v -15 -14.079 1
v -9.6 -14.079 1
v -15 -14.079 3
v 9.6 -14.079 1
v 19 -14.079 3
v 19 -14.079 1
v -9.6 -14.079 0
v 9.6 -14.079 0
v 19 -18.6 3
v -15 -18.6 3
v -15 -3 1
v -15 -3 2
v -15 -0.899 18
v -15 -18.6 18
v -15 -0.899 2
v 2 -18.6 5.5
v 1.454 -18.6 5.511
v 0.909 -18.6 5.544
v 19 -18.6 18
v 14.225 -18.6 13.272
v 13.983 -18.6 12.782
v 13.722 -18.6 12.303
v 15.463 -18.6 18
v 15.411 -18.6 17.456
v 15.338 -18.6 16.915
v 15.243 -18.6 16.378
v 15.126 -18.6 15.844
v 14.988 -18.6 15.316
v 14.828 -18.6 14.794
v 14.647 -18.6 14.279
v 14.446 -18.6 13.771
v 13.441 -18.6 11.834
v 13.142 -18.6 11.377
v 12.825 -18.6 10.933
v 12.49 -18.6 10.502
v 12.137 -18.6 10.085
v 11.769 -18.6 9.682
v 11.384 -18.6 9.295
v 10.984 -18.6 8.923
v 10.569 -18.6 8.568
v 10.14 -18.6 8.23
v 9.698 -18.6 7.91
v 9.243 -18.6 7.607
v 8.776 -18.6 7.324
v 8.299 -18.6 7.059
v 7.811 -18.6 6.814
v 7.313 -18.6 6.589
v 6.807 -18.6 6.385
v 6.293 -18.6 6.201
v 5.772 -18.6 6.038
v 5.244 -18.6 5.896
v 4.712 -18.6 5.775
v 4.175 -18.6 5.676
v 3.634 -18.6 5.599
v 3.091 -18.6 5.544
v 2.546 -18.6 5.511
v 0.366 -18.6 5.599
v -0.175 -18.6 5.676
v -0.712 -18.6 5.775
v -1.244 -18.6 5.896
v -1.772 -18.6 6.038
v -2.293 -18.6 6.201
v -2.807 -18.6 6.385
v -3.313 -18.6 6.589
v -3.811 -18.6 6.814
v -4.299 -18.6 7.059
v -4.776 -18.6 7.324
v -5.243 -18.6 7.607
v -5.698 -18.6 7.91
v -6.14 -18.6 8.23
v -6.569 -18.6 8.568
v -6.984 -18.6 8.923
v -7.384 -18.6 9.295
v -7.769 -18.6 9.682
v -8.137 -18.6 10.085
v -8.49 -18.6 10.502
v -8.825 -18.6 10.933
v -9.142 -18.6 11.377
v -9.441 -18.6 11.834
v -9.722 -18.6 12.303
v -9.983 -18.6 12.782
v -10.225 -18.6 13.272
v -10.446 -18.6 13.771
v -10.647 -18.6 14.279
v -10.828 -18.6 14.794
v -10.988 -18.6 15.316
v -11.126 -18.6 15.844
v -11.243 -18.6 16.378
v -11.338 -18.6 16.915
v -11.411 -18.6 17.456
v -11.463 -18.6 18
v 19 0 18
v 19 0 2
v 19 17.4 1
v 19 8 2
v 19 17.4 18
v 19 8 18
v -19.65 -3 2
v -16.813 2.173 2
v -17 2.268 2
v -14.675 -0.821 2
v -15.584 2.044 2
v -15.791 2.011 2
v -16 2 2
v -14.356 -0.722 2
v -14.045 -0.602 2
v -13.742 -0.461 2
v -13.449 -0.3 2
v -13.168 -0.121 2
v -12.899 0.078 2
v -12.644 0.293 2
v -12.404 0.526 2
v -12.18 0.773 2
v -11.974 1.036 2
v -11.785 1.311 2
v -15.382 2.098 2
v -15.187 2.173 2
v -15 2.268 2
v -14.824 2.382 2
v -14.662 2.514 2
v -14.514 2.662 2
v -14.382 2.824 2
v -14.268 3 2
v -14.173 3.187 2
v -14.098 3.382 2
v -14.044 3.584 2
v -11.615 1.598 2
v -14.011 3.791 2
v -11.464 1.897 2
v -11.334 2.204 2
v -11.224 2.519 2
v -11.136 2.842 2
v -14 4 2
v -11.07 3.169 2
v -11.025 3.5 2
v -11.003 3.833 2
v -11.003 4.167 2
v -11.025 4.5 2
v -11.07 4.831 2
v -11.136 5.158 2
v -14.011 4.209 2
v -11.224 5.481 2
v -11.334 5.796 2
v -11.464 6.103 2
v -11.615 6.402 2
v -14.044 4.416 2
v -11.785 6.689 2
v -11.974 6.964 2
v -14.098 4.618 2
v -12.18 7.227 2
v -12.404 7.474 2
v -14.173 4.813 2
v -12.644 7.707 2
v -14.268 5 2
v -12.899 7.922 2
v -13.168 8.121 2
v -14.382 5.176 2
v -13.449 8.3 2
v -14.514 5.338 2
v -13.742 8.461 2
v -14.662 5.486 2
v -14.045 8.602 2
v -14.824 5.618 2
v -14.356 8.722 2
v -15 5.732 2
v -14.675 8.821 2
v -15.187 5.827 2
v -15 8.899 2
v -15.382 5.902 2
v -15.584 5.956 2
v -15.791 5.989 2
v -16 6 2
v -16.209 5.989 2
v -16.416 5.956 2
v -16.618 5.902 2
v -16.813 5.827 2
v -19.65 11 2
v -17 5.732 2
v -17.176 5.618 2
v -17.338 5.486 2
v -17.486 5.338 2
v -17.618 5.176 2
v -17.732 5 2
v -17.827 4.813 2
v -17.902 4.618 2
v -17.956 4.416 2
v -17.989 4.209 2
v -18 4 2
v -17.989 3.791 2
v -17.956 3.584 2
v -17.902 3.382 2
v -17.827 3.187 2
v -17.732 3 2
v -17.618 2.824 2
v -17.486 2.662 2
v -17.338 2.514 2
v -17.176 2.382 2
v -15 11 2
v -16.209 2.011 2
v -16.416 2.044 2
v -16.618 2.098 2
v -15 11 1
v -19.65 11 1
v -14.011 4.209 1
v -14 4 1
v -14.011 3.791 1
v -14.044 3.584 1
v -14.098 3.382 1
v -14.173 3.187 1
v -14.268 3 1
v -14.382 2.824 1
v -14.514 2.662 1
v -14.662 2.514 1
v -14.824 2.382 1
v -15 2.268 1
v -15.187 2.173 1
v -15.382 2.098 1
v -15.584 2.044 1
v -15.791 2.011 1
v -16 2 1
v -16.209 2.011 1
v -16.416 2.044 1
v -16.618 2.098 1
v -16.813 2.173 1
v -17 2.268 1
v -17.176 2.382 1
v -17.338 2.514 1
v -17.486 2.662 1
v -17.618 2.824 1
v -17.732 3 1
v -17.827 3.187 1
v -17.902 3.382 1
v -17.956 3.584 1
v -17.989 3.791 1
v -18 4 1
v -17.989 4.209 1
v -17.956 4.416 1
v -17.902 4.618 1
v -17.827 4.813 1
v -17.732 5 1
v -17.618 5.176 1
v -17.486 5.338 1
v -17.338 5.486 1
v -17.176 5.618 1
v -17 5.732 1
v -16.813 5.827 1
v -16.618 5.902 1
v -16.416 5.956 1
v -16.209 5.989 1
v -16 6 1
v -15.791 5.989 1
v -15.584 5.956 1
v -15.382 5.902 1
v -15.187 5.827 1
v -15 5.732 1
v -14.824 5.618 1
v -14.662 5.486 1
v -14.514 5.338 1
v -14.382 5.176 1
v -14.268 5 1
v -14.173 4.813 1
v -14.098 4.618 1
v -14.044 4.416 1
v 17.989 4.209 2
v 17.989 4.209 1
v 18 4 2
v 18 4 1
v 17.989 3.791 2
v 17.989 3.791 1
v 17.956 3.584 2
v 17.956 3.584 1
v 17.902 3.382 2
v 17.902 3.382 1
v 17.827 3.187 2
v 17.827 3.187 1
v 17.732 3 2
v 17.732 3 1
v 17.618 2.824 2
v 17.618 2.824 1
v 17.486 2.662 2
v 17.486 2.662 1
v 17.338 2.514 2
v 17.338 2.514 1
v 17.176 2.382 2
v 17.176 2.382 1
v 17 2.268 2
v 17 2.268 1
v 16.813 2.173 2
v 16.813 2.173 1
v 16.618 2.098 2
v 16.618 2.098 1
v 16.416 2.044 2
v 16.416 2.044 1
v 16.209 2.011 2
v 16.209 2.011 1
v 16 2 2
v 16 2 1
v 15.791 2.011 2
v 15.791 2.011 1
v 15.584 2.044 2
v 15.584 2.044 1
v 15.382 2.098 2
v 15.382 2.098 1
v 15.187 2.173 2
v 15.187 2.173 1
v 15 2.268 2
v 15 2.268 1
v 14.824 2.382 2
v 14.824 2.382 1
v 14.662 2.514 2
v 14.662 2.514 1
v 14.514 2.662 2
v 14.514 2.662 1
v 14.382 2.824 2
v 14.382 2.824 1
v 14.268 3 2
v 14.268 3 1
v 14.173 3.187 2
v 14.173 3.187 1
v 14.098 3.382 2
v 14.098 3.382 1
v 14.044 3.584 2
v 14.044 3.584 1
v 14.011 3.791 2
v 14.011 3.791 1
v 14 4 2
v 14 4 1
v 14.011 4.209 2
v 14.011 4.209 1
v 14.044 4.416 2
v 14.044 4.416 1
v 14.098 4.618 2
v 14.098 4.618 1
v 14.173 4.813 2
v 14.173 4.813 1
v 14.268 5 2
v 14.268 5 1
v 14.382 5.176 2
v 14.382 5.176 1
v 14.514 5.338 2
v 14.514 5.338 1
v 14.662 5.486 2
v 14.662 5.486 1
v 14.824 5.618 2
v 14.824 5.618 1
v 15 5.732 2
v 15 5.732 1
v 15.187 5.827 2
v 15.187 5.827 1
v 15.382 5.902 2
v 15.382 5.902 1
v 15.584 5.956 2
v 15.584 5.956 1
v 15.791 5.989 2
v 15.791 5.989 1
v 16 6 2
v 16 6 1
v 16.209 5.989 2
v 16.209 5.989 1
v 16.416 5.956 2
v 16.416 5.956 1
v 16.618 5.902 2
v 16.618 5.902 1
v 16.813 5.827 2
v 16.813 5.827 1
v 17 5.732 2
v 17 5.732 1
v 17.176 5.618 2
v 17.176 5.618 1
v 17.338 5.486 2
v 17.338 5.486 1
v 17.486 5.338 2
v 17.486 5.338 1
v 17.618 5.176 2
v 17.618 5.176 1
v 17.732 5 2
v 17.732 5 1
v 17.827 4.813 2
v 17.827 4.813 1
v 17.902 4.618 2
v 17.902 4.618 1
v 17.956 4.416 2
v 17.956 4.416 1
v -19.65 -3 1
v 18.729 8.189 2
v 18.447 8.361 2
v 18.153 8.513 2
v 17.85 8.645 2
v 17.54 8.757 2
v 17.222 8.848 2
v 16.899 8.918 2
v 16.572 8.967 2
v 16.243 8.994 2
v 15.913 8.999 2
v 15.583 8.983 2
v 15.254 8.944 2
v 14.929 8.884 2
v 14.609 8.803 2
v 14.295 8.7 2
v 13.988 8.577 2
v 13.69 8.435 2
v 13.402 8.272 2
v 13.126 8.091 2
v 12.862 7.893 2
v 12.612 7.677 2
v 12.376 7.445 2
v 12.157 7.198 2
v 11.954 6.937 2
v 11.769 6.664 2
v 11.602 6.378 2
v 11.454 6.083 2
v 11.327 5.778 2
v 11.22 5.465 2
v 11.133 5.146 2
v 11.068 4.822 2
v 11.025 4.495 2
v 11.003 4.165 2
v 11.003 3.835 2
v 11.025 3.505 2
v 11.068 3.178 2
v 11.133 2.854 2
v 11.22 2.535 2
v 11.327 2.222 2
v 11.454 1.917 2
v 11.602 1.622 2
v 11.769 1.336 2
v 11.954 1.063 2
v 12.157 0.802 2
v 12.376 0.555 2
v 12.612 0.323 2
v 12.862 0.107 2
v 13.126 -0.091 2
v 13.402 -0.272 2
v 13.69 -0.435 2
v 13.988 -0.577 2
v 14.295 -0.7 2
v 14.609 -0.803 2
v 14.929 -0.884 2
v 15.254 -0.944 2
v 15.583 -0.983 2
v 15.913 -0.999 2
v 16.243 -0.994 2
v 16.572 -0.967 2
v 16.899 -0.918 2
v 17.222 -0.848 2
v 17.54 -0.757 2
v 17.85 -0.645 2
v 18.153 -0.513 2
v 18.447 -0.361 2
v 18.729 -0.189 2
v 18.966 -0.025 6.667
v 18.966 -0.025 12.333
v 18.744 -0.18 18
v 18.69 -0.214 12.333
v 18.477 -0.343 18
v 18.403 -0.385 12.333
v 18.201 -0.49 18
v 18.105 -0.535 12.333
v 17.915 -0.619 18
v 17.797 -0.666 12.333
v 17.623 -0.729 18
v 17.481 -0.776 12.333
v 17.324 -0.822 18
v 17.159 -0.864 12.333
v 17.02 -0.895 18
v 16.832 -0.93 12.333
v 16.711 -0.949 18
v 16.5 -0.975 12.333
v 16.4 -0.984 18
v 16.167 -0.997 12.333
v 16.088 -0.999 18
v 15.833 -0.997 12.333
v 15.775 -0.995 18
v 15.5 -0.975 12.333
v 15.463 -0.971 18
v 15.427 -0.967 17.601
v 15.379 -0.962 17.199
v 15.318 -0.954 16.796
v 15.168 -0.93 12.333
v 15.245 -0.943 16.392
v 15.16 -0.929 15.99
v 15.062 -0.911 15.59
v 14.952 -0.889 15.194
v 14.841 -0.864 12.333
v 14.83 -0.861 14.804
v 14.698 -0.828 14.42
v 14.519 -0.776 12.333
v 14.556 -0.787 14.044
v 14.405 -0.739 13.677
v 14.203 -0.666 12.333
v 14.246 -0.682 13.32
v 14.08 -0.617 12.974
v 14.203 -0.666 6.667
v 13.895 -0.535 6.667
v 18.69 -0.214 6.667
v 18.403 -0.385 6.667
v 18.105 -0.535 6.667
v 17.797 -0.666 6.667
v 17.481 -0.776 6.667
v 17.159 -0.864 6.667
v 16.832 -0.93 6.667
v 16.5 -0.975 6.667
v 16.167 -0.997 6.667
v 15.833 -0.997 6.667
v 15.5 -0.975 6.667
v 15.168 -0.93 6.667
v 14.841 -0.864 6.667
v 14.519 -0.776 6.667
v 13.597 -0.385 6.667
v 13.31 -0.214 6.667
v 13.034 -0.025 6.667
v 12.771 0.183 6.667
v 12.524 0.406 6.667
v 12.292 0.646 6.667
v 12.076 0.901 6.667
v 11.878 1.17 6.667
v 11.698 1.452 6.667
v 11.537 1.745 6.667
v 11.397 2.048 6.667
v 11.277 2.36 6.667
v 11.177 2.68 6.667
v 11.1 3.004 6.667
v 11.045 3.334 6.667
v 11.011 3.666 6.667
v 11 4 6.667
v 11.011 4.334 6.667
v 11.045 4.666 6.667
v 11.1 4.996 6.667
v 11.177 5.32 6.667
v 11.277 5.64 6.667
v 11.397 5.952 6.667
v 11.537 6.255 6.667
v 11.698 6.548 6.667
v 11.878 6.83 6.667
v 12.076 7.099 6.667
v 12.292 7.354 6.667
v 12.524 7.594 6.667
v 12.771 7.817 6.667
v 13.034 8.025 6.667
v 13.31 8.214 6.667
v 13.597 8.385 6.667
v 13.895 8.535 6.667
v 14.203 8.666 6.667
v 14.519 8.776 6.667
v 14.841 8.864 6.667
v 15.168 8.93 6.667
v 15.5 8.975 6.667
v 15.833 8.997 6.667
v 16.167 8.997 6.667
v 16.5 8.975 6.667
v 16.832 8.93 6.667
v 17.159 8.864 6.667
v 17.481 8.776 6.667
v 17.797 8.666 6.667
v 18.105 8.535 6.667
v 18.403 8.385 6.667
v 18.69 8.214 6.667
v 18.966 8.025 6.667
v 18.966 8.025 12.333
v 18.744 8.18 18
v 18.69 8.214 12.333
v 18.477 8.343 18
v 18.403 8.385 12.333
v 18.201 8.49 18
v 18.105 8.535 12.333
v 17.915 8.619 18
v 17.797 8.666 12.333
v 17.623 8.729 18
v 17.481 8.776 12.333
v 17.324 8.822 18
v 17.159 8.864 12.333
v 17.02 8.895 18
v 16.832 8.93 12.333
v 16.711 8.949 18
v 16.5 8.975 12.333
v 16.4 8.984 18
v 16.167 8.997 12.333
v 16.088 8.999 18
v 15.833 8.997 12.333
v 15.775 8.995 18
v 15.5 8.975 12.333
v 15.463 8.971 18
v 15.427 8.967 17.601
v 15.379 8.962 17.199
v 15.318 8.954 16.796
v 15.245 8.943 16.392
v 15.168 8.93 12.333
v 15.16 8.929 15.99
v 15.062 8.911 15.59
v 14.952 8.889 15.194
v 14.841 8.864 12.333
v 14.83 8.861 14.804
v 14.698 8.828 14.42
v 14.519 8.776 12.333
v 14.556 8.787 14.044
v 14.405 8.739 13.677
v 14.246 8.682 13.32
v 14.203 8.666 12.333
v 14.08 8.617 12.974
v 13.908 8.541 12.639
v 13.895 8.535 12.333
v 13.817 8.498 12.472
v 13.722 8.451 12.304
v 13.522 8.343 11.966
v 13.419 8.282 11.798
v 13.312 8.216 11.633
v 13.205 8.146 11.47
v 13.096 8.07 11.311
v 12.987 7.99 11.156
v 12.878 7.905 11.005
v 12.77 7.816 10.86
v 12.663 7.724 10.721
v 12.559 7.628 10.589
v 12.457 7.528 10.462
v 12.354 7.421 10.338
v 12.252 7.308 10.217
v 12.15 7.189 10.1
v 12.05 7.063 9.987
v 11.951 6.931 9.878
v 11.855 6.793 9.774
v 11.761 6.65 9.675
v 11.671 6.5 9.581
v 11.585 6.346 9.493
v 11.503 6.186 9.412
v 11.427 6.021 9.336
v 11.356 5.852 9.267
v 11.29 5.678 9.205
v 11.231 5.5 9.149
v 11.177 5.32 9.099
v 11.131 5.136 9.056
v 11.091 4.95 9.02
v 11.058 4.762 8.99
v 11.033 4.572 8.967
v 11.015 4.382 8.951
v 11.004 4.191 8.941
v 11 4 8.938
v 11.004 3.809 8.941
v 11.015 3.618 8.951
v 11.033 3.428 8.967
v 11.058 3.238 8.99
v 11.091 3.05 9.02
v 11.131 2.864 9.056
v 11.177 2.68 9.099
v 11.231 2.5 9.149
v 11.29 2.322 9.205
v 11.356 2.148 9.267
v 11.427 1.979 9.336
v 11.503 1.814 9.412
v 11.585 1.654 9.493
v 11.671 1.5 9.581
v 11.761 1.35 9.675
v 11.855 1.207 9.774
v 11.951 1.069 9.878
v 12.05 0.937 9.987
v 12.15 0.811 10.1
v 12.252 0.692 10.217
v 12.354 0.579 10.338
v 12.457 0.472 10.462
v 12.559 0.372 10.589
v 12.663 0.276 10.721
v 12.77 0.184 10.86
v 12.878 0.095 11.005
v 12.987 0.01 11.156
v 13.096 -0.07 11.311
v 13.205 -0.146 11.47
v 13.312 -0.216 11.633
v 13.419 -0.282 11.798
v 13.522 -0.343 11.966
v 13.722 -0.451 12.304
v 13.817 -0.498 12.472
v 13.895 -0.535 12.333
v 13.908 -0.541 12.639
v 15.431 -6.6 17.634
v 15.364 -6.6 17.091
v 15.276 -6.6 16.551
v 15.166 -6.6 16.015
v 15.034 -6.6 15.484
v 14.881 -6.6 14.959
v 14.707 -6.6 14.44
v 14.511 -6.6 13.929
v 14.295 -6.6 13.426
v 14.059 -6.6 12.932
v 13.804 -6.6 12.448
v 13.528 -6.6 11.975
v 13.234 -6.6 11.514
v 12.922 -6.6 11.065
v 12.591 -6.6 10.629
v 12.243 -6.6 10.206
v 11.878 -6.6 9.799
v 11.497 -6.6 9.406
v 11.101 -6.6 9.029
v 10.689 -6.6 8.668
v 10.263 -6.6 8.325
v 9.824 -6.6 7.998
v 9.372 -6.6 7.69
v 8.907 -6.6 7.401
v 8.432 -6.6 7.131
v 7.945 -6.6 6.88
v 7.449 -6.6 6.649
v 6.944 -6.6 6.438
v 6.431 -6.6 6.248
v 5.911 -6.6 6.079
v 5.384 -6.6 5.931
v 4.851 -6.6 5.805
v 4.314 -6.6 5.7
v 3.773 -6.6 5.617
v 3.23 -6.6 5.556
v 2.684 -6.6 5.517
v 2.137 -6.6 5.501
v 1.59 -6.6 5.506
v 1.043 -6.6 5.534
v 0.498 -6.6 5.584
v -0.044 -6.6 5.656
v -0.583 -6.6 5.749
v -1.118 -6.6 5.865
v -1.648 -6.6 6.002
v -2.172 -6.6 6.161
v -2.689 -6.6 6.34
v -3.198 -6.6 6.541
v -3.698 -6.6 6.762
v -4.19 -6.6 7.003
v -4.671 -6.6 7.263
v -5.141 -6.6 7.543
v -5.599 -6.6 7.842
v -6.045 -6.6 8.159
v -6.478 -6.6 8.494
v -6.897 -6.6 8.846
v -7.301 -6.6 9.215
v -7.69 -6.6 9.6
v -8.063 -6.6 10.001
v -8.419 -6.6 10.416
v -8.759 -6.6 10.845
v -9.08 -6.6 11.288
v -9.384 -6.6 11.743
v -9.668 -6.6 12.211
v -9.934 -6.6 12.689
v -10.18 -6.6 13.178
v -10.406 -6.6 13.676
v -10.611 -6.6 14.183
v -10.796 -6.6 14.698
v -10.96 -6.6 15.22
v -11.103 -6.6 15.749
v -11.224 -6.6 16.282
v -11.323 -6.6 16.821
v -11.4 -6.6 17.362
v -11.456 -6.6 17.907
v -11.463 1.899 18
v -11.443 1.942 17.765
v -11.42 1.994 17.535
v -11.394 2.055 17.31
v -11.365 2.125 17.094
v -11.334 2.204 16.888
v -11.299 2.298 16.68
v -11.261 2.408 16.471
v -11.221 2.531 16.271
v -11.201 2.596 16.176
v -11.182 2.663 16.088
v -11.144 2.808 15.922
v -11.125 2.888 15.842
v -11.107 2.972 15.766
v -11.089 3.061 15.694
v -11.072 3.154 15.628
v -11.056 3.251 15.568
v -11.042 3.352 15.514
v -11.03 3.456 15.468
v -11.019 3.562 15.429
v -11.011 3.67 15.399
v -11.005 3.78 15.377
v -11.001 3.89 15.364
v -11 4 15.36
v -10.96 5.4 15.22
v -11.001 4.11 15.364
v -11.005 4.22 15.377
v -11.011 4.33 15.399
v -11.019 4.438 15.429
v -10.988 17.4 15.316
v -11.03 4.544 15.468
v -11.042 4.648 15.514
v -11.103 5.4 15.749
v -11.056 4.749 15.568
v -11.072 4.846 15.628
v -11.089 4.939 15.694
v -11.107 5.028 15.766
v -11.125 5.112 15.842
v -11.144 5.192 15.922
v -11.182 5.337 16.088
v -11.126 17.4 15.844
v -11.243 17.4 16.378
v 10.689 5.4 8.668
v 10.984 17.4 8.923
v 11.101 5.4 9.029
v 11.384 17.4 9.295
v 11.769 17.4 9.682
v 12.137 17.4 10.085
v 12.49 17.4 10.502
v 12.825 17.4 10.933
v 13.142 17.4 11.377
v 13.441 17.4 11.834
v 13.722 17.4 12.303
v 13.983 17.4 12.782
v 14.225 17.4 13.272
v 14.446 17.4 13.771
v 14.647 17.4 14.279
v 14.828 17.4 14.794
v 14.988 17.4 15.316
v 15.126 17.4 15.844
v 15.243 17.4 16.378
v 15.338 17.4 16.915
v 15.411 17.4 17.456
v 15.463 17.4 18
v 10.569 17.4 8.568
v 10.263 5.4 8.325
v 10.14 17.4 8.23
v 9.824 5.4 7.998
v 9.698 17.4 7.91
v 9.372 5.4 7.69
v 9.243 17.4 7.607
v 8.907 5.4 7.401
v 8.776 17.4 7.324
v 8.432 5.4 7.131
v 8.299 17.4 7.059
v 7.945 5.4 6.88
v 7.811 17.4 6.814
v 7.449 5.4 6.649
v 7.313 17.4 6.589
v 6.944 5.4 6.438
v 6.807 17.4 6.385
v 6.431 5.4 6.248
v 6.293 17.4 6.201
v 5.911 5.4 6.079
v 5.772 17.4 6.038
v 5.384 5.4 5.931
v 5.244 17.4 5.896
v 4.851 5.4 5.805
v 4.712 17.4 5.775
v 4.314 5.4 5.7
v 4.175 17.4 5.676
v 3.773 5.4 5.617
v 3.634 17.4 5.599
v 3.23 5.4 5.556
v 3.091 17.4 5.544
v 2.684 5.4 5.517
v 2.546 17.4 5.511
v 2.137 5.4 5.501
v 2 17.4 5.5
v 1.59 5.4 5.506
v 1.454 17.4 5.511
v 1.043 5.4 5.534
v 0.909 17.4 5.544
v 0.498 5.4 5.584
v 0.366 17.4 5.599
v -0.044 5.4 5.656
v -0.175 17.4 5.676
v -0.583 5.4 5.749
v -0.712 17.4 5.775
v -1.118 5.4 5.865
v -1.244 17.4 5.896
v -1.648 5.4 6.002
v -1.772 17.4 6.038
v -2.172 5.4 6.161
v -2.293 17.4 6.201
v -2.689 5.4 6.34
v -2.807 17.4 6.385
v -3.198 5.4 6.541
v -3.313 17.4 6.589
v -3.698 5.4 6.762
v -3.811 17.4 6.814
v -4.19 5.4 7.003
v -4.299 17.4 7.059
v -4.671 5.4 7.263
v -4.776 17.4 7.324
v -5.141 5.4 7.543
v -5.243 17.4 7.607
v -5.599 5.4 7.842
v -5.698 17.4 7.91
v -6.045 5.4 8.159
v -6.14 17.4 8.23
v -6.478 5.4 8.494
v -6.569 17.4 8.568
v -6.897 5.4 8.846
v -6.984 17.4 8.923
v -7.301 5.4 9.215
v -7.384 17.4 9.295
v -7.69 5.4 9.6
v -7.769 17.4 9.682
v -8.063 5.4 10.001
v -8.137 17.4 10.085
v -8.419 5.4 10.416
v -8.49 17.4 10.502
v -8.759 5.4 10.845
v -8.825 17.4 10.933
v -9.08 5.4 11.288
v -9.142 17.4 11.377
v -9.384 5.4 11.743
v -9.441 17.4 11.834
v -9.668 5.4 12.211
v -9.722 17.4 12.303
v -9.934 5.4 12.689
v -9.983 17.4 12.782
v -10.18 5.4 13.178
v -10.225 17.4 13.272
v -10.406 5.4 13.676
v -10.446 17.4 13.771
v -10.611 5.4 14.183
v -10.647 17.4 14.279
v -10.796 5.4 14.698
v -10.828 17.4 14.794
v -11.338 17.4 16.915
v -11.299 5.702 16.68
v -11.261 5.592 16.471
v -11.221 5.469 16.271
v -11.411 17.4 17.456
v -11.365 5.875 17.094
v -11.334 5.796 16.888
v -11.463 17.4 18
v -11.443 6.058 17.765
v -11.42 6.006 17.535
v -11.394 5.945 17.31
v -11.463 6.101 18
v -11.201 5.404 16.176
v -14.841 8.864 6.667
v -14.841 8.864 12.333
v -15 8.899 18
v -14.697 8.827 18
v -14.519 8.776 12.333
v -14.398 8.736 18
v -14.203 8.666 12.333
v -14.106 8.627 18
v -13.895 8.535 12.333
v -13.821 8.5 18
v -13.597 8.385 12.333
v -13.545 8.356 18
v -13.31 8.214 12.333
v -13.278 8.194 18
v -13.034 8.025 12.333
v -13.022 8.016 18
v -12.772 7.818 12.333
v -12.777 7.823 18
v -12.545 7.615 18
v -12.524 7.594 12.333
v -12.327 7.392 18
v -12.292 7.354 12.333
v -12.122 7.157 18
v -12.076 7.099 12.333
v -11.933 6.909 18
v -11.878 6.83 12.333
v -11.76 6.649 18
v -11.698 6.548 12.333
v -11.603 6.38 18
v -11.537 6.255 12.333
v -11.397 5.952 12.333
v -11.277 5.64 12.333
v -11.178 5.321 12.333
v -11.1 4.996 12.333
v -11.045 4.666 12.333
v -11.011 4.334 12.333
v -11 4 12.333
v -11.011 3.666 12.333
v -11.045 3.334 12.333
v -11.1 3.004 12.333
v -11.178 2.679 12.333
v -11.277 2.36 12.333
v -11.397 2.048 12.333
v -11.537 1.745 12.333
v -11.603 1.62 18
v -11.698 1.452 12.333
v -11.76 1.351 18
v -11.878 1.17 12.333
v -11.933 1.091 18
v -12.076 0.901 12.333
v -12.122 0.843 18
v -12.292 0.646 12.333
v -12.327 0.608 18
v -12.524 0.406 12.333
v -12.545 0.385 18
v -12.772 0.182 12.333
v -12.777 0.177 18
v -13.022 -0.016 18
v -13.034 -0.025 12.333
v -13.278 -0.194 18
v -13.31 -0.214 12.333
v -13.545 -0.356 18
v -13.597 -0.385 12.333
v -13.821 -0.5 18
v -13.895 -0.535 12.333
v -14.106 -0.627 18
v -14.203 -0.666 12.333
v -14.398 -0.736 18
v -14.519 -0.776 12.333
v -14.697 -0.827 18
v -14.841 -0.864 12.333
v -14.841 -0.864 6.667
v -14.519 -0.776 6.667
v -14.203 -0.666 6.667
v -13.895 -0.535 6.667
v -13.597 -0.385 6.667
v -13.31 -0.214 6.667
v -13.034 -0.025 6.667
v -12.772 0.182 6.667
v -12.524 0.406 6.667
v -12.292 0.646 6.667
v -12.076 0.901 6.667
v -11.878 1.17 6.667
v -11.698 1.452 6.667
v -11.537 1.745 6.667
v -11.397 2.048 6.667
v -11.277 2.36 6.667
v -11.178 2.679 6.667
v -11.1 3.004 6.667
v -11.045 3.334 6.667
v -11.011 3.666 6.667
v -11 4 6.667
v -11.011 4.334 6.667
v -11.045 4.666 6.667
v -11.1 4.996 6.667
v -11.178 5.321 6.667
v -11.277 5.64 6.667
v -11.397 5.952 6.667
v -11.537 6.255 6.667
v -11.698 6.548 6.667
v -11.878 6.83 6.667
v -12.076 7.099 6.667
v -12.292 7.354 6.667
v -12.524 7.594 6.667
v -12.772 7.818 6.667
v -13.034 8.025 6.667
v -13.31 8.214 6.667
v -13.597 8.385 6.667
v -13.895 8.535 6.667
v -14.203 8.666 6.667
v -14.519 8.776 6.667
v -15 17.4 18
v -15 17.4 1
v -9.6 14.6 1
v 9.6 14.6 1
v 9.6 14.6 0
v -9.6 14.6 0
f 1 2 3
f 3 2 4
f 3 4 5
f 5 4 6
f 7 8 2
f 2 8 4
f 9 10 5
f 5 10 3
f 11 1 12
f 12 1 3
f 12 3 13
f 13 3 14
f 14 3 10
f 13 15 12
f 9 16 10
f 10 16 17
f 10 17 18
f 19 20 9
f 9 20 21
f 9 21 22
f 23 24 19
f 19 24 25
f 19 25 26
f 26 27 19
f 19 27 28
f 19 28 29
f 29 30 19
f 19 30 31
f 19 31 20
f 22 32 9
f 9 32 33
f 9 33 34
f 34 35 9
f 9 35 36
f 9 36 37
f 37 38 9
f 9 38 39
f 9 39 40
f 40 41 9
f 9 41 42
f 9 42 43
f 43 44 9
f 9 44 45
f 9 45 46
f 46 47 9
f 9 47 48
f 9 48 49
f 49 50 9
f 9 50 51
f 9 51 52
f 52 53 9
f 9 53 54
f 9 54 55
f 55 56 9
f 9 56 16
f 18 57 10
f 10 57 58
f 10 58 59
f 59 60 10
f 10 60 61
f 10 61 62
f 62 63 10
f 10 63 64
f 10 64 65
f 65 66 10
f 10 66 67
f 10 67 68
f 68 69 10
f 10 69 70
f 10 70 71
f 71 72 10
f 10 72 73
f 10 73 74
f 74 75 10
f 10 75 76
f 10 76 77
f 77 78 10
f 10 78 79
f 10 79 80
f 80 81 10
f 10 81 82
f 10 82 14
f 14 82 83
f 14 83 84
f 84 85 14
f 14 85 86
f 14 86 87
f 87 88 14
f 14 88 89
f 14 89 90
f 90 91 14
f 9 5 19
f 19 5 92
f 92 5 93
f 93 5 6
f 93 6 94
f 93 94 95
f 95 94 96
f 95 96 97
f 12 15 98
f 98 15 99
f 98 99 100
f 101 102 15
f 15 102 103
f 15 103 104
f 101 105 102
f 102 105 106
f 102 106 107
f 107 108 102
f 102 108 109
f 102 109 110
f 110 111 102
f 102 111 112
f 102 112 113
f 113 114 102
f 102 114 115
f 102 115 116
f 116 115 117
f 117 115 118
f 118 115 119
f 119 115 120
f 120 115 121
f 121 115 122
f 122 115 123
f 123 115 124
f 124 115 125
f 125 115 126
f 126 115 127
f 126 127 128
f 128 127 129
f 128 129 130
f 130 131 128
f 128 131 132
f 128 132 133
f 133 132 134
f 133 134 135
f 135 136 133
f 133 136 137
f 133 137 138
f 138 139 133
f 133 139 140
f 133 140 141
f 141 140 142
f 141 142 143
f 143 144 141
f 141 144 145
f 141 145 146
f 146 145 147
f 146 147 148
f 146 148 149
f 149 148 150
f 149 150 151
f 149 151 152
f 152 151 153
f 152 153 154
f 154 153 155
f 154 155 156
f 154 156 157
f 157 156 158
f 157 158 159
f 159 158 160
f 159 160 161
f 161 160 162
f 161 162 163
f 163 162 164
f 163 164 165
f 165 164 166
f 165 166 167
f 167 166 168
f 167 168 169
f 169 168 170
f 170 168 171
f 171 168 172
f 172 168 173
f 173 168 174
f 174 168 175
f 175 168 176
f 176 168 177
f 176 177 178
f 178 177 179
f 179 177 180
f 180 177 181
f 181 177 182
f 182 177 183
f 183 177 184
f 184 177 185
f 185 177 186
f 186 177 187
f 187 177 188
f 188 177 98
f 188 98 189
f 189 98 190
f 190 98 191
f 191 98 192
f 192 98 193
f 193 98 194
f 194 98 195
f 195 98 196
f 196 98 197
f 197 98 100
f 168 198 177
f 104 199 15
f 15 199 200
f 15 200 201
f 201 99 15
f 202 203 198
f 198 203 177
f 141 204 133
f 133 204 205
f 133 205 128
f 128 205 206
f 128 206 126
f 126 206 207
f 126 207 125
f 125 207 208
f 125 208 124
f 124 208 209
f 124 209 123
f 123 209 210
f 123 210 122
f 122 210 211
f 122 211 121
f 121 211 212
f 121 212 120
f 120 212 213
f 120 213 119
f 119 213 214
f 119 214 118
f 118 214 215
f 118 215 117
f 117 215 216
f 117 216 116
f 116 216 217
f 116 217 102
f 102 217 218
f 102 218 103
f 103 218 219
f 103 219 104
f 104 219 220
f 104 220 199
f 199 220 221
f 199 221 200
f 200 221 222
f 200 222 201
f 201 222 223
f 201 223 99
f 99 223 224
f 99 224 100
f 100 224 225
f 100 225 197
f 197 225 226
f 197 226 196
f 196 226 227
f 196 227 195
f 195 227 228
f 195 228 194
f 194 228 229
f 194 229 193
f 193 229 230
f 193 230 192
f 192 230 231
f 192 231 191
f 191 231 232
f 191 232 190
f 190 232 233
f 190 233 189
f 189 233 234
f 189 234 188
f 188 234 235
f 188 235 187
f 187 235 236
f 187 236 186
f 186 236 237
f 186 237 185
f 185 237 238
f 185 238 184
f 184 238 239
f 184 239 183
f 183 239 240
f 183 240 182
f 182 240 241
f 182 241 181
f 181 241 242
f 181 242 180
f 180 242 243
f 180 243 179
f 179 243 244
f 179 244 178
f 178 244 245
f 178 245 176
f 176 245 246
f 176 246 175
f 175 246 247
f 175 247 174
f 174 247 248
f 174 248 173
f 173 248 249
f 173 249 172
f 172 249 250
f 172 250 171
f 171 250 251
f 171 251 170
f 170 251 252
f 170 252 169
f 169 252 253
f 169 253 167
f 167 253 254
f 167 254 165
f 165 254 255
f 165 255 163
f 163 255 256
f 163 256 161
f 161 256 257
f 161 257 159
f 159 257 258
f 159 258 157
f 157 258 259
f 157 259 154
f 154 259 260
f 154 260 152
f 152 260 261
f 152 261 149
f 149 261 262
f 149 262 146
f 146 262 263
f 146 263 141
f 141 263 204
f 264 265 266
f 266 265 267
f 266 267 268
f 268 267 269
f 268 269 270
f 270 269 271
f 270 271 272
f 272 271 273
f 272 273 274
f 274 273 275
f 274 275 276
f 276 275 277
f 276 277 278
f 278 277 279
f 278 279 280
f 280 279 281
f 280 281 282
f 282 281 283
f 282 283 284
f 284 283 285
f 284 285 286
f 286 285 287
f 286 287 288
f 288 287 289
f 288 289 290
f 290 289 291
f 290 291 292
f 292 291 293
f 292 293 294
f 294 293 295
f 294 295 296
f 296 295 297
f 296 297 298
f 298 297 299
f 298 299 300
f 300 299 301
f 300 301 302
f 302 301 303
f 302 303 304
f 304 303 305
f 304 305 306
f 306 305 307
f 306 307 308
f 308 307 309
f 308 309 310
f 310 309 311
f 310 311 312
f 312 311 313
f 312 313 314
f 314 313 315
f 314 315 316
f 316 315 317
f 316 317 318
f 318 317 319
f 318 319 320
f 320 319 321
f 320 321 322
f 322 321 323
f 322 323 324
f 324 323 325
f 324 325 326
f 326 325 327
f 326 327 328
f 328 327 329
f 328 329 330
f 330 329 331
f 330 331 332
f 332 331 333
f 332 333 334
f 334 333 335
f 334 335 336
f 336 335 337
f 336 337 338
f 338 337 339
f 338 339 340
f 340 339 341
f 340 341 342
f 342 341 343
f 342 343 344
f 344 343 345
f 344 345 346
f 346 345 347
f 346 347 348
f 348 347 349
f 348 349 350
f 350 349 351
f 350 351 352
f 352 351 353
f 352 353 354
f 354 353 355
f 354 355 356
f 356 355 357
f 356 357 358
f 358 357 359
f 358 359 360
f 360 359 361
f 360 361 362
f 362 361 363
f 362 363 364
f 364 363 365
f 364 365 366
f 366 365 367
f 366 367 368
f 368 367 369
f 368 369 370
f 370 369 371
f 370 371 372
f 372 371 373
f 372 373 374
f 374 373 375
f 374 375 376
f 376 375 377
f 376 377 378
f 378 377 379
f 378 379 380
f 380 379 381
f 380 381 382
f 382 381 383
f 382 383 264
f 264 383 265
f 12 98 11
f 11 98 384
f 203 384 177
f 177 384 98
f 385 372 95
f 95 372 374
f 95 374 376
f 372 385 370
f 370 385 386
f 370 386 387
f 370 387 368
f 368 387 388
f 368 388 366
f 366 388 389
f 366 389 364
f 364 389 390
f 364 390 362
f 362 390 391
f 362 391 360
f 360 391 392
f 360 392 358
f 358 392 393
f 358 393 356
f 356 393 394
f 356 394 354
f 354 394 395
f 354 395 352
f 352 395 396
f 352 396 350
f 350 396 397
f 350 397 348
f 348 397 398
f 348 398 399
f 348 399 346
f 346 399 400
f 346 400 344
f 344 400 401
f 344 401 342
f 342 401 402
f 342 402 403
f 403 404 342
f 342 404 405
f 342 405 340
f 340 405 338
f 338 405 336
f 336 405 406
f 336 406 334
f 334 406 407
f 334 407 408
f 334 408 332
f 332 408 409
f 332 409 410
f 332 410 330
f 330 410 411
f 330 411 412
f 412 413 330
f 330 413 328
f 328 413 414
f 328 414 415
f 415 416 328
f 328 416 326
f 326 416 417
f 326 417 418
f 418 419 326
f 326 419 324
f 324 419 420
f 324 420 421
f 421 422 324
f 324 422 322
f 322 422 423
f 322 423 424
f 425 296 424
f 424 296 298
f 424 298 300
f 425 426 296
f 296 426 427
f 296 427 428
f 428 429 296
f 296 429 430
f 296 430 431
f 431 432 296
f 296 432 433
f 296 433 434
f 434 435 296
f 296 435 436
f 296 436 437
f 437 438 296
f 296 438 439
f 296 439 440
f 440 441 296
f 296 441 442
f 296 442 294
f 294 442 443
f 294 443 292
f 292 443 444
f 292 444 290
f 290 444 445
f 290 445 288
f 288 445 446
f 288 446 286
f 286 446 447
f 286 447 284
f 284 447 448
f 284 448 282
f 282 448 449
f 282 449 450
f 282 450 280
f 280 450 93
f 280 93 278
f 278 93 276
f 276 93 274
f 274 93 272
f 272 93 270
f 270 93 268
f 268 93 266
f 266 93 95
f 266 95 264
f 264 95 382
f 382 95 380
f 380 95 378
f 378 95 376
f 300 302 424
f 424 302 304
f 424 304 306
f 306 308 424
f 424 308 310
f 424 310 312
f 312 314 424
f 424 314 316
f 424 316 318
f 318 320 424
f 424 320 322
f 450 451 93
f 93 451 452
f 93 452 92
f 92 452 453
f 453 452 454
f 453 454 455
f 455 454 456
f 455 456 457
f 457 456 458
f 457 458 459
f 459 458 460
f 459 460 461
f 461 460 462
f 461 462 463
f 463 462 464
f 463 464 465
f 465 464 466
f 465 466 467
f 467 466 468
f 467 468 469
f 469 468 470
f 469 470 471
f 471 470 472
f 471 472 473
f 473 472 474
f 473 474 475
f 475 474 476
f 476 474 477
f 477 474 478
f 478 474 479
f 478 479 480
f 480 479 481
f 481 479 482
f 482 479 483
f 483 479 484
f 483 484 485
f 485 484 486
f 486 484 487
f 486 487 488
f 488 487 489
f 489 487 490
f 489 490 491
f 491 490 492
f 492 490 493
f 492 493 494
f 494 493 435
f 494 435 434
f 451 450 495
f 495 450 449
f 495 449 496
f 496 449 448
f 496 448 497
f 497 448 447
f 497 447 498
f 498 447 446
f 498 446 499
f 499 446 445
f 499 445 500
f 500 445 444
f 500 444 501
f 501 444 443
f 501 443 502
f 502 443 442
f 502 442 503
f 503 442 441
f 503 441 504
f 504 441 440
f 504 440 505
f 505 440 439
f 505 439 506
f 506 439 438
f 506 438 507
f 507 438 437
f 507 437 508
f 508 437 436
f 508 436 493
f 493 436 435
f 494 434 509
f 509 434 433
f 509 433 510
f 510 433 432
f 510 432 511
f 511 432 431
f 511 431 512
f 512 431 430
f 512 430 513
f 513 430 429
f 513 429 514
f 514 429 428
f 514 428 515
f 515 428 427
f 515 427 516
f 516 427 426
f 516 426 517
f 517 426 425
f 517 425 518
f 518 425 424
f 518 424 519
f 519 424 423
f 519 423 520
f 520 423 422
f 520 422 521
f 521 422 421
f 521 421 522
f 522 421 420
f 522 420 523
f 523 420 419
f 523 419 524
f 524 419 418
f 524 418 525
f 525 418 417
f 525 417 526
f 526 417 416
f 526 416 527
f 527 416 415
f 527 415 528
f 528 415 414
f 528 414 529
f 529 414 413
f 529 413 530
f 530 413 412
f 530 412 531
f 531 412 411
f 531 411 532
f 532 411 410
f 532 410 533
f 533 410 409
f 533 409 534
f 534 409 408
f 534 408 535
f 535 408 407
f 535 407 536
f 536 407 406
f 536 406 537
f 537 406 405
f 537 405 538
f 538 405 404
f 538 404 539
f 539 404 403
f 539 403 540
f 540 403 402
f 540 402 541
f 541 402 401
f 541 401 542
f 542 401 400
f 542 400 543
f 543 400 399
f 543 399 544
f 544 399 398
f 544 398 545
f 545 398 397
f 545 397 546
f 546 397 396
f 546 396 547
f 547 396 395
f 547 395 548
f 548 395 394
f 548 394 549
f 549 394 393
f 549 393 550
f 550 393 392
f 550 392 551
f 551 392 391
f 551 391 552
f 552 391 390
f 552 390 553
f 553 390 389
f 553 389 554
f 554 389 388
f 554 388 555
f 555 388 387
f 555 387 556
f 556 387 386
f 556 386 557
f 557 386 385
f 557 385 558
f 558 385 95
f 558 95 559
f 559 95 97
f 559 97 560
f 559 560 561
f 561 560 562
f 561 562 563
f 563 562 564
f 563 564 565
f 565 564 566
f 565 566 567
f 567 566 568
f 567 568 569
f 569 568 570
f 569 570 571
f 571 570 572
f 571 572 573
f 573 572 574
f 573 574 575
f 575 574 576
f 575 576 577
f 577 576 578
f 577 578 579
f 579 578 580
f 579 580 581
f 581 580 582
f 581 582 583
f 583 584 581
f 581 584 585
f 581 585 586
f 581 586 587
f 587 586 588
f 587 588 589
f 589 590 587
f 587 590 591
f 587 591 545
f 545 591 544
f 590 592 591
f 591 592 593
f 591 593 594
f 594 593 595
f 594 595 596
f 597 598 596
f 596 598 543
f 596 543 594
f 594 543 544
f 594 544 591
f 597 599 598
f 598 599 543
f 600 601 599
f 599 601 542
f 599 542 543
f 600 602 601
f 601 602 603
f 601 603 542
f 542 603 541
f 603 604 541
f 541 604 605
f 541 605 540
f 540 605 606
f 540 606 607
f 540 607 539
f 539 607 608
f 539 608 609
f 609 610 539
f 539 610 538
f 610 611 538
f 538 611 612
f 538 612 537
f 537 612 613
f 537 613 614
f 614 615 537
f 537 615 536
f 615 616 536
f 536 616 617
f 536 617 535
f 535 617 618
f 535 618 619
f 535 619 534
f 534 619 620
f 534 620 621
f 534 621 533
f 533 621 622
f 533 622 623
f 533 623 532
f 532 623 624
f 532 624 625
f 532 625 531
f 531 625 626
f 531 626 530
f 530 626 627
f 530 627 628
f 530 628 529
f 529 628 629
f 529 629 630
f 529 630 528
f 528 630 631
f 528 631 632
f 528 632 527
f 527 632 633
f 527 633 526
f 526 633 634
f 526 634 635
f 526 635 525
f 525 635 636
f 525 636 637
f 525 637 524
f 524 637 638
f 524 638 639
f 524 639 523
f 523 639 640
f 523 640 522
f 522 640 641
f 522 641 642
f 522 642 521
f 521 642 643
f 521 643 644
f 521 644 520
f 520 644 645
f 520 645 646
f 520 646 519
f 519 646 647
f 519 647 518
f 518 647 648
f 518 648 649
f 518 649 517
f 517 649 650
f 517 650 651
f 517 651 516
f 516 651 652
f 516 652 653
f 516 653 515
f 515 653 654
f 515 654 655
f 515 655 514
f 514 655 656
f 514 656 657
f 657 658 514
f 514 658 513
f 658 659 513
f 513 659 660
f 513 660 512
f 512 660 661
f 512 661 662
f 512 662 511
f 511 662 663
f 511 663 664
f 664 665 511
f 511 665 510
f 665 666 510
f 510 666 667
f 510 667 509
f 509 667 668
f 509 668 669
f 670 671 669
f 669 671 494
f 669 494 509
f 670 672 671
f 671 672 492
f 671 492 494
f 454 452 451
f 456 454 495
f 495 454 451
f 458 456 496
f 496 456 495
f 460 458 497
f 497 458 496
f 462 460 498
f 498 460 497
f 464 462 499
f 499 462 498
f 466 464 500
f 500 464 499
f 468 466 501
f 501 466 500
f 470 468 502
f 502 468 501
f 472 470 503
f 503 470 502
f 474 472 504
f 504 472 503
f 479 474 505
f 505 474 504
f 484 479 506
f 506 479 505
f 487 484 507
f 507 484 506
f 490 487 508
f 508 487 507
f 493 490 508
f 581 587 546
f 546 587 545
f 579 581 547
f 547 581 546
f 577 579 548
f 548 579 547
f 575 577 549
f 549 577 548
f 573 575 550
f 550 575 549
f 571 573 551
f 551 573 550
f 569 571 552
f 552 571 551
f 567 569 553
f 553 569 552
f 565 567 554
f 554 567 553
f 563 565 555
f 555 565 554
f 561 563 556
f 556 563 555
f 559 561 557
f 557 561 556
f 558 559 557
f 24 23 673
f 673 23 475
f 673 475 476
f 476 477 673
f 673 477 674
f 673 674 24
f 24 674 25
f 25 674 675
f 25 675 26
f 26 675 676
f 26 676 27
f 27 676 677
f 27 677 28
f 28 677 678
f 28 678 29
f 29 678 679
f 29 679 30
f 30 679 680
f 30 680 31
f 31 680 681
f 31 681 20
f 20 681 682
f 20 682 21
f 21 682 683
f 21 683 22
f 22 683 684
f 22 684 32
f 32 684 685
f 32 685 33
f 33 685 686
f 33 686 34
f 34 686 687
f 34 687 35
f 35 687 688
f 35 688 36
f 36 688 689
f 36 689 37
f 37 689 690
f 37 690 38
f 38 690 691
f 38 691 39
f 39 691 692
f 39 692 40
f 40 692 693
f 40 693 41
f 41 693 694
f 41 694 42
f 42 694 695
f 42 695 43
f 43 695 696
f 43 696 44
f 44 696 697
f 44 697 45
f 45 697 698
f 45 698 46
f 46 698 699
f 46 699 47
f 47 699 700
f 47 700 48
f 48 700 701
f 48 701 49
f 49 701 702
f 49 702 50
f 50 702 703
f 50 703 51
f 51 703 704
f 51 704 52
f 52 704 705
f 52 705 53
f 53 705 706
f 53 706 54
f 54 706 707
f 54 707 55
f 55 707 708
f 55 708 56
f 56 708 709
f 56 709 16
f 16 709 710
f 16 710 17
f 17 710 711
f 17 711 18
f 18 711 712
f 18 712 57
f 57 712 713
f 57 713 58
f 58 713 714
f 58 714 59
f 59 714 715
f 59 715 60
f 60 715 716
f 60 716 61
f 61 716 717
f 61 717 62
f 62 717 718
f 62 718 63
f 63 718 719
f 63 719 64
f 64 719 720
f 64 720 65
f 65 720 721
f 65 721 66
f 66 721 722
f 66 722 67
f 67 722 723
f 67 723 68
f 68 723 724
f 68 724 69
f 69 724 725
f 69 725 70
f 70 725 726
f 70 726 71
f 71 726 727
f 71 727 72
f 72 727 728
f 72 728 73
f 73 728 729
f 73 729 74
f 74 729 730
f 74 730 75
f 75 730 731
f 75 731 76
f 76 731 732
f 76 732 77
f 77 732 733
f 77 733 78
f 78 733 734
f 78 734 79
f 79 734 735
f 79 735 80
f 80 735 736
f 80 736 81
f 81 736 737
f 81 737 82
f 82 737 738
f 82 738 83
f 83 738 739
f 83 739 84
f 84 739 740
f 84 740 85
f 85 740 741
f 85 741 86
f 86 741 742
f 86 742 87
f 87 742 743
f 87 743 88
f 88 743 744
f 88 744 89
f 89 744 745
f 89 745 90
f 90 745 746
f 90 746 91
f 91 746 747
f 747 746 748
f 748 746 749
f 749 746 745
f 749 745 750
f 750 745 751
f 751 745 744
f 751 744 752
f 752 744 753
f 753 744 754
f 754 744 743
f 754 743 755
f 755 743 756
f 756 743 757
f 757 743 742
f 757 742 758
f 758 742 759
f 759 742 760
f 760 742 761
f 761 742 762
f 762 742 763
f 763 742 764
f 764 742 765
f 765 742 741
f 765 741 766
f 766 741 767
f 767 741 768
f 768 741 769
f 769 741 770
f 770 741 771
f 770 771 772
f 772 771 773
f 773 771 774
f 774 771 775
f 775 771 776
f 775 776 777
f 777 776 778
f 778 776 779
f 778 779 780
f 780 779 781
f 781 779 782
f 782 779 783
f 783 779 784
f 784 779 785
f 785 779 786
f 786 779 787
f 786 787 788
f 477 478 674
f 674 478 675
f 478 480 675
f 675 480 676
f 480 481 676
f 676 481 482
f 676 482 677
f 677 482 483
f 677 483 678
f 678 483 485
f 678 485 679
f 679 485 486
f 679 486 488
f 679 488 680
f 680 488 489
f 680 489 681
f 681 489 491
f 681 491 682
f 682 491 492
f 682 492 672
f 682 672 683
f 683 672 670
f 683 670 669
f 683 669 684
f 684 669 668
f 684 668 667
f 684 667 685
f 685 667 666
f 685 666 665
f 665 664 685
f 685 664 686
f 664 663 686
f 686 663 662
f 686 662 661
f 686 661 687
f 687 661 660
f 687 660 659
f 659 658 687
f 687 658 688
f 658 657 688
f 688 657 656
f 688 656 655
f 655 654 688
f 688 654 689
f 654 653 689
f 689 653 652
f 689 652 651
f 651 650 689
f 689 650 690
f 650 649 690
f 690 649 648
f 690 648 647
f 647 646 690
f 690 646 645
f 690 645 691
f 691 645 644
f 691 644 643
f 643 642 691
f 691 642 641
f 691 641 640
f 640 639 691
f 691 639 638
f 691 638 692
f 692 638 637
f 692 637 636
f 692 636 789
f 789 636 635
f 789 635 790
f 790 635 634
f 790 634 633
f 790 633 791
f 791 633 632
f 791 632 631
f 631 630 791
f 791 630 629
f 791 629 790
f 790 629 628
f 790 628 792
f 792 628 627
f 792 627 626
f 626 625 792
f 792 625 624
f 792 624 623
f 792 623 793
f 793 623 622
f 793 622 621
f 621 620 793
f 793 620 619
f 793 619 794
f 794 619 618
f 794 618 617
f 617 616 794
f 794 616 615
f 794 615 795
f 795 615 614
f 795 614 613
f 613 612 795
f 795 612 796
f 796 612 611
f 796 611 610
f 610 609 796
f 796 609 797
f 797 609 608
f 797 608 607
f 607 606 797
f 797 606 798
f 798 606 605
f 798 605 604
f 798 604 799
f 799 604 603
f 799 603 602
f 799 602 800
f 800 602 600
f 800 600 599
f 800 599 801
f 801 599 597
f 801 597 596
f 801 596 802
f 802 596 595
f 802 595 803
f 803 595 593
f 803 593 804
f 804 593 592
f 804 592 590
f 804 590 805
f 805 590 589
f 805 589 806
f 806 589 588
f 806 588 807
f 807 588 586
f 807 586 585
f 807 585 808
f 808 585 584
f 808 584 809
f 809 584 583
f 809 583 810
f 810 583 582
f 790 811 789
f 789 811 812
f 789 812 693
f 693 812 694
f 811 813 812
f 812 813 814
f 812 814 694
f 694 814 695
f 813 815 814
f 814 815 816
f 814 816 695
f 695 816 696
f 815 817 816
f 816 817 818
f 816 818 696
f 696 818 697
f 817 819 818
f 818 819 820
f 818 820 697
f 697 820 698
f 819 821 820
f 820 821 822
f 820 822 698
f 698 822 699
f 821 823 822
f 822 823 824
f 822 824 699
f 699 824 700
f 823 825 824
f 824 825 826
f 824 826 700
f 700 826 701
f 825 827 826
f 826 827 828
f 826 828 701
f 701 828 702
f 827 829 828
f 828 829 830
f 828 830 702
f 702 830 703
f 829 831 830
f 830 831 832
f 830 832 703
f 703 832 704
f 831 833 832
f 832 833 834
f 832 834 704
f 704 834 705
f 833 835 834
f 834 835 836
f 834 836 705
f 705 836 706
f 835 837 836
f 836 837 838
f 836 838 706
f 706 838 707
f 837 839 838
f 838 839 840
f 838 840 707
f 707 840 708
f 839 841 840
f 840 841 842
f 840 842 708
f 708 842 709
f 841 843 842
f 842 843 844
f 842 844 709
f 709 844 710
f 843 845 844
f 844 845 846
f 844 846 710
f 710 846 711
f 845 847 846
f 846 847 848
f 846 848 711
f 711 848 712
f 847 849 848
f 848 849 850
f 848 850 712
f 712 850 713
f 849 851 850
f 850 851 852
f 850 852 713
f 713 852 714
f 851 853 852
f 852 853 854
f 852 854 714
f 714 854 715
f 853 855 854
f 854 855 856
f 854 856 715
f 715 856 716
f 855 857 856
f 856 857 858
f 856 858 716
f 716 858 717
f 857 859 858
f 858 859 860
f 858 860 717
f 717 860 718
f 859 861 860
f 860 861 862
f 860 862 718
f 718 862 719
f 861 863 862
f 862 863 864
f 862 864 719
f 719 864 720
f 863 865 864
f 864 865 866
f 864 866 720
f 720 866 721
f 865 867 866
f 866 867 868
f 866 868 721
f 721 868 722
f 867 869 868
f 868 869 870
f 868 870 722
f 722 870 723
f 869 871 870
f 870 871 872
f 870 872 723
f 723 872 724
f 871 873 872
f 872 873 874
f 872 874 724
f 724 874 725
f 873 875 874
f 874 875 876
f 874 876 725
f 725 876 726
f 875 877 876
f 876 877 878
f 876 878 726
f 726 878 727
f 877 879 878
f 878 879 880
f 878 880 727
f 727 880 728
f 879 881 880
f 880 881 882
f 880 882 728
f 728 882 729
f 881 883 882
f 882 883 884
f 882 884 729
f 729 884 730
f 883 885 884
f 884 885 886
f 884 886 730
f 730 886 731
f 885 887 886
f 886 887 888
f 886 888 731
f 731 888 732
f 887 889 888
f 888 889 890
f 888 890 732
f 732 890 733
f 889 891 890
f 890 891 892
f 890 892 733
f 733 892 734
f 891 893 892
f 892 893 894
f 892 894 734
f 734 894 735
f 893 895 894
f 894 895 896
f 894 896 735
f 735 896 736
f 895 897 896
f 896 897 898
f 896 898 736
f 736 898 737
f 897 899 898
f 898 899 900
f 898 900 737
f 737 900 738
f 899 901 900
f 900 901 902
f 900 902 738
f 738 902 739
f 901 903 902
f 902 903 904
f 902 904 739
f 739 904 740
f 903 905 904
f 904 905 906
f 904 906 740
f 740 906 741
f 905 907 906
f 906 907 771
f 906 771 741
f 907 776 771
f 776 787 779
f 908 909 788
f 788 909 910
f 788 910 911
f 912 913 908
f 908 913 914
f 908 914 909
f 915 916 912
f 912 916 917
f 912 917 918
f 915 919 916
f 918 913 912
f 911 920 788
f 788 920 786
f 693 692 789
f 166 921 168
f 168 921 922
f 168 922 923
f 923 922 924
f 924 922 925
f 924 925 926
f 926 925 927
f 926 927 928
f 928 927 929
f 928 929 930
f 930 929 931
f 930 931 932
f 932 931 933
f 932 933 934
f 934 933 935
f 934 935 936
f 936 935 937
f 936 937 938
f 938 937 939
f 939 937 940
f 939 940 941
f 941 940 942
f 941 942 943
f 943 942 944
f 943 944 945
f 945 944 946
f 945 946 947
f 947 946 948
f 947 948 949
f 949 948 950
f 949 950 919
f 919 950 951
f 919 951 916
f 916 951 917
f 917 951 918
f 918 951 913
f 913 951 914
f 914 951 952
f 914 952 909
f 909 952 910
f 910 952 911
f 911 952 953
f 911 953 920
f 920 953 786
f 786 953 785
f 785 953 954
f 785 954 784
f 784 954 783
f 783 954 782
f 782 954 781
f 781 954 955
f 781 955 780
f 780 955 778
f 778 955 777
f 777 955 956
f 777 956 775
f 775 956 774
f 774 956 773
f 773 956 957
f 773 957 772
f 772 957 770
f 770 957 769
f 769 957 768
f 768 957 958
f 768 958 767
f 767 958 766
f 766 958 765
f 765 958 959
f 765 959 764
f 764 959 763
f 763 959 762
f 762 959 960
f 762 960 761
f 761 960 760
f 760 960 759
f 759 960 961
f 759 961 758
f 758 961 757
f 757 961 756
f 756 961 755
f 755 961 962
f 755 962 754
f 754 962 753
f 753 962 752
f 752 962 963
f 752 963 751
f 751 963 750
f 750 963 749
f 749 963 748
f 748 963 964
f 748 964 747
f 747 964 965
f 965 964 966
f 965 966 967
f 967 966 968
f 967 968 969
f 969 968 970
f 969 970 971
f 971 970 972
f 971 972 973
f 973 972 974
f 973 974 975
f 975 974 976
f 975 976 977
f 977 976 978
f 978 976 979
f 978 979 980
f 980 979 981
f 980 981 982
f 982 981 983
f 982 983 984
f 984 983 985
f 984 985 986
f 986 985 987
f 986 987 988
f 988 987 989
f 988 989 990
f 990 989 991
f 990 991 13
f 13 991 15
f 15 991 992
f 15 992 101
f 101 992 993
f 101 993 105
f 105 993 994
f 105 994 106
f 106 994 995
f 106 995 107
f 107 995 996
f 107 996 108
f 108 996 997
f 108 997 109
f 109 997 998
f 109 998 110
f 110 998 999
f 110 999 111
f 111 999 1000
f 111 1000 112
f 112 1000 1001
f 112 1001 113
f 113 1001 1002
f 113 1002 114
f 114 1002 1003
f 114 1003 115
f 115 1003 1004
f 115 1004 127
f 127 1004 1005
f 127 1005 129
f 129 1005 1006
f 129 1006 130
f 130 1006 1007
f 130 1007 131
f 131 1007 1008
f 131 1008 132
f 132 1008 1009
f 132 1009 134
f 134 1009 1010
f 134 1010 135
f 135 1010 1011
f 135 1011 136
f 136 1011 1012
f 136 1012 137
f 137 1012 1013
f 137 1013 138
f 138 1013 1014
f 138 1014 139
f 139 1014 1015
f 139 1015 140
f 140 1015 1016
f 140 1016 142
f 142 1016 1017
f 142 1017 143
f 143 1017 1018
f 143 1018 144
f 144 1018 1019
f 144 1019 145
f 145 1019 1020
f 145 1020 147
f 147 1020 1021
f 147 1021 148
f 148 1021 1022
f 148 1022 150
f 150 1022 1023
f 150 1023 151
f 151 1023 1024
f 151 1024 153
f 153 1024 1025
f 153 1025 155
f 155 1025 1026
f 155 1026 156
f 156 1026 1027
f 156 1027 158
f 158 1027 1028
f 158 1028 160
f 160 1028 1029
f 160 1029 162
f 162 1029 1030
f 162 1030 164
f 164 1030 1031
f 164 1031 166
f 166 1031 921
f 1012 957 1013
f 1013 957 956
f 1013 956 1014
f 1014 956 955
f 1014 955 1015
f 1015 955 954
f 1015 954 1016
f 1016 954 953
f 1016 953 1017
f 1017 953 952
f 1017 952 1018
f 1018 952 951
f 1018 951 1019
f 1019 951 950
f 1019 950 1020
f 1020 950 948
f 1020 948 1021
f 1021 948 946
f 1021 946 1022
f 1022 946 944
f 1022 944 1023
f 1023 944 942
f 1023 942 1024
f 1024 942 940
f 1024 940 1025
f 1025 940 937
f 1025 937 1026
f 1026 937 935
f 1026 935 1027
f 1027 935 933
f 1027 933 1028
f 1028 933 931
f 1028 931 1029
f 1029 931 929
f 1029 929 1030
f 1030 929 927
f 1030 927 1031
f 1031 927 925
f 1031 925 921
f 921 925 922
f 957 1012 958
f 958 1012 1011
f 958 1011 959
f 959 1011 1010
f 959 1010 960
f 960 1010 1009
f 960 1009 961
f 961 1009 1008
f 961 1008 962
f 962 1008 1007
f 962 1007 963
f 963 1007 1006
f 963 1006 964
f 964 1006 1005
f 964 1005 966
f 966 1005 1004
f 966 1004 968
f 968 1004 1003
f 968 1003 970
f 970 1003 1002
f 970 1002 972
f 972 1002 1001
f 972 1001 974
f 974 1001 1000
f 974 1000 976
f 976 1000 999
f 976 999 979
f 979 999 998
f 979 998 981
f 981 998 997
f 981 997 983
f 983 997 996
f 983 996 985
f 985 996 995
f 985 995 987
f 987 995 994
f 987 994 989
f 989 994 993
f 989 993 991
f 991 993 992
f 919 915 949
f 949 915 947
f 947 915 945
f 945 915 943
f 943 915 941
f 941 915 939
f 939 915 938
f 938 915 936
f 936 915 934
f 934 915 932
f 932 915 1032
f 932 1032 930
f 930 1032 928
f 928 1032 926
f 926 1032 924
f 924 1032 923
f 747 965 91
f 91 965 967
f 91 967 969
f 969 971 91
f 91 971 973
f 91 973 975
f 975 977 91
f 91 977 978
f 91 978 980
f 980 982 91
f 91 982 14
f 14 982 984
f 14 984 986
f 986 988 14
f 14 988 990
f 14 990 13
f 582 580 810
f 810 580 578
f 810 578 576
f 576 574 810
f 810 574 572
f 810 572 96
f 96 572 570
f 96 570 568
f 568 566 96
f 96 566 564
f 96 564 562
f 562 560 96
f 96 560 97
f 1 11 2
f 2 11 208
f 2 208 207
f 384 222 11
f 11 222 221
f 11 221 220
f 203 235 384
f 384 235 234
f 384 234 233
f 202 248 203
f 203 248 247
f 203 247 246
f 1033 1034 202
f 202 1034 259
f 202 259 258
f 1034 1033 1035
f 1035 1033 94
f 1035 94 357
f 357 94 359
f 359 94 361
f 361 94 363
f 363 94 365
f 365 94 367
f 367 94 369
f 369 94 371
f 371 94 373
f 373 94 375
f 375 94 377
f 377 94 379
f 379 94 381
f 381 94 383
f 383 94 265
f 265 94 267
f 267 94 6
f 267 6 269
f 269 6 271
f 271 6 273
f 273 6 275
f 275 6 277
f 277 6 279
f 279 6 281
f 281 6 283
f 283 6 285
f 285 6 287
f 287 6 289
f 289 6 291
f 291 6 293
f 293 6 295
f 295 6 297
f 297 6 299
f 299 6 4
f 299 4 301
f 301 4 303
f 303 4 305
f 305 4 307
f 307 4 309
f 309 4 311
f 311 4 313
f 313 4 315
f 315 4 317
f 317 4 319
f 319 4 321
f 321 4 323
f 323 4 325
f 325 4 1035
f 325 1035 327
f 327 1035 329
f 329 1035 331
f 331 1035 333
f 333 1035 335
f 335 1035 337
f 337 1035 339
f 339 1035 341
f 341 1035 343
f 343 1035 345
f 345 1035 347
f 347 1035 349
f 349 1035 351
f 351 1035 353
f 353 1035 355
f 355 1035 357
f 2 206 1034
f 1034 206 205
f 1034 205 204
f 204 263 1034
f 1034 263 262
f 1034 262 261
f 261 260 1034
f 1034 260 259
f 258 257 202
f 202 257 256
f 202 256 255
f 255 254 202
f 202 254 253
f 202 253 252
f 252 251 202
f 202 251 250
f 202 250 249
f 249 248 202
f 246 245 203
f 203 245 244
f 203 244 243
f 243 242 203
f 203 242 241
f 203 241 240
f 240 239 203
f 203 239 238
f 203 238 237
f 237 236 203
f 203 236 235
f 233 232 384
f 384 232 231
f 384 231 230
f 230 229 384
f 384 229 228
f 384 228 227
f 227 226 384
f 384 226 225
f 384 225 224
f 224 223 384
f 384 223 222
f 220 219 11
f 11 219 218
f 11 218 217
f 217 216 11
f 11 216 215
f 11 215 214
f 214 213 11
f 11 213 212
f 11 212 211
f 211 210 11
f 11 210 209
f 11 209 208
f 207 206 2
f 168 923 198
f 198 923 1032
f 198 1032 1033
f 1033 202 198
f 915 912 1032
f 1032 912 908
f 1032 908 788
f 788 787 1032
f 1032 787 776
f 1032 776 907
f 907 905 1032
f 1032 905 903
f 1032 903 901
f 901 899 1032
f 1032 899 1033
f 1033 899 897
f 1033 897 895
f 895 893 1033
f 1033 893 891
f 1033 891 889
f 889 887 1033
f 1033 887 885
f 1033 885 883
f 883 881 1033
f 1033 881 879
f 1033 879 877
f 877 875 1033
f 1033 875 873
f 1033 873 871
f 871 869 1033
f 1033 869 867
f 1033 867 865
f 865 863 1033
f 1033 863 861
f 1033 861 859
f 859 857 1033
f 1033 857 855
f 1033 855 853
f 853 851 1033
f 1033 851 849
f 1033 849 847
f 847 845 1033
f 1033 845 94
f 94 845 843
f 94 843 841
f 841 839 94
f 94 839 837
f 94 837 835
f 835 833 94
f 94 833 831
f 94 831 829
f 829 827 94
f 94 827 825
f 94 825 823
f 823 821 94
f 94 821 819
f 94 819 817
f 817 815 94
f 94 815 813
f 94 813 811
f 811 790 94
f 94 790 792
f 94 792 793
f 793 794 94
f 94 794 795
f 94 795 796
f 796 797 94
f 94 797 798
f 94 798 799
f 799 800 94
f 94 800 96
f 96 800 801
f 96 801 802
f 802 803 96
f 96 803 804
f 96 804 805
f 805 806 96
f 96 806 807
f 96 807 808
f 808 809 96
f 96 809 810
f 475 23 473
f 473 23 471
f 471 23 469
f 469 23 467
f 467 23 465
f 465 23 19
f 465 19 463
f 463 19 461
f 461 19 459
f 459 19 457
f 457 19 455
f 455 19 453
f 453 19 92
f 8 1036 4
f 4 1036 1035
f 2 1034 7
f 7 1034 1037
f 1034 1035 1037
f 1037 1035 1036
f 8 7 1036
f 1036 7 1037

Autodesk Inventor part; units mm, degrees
ref_plane "YZ Plane" through (0, 0, 0) normal (1, 0, 0) x (0, 1, 0)
ref_plane "XZ Plane" through (0, 0, 0) normal (0, 1, 0) x (-1, 0, 0)
sketch "Sketch1" plane through (0, 0, 0) normal (0, 0, 1) x (1, 0, 0)
  line L0 (10, -15) -> (-10, -15) projected
  line L1 (10, 15) -> (10, -15) projected
  line L2 (-10, 15) -> (10, 15) projected
  line L3 (-10, -15) -> (-10, 15) projected
  line L4 (9.6, -14.6) -> (-9.6, -14.6)
  line L5 (-9.6, -14.6) -> (-9.6, 14.6)
  line L6 (-9.6, 14.6) -> (9.6, 14.6)
  line L7 (9.6, 14.6) -> (9.6, -14.6)
  point P0 (0, 0)
  dimension "d0" = 0.4
ref_plane "Work Plane1" through (-20.5, -15, 1) normal (0, 0, 1) x (1, 0, 0)
extrude "Extrusion1" add sketch "Sketch1" along normal up to surface (1 mm away) contours L4 L5 L6 L7
sketch "Sketch2" plane through (-9.6, -14.6, 1) normal (0, 0, 1) x (1, 0, 0)
  circle A0 centre (-6.4, 18.6) radius 2 projected
  circle A1 centre (25.6, 18.6) radius 2 projected
  line L0 (0, 0) -> (0, 29.2) projected
  line L1 (19.2, 0) -> (0, 0) projected
  line L2 (19.2, 29.2) -> (19.2, 0) projected
  line L3 (0, 29.2) -> (19.2, 29.2) projected
  line L4 (-0.4, -4.9) -> (-0.4, 26.1) construction
  line L5 (23.6, -4.9) -> (23.6, 26.1) construction
  line L6 (28.6, 32) -> (-5.4, 32)
  line L7 (-5.4, 32) -> (-5.4, -4)
  line L8 (-5.4, -4) -> (28.6, -4)
  line L9 (28.6, -4) -> (28.6, 32)
  circle A2 centre (25.6, 18.6) radius 5
  circle A3 centre (-6.4, 18.6) radius 5
  point P0 (-5.4, 23.499)
  point P1 (-5.4, 13.701)
  point P2 (28.6, 14.6)
  point P3 (28.6, 22.6)
  dimension "d12" = 34
  dimension "d13" = 4
  dimension "d14" = 24
  dimension "d15" = 5
  dimension "d16" = 36
  dimension "d17" = 3
  dimension "d18" = 3
extrude "Extrusion2" add sketch "Sketch2" along normal blind 17 contours L7 L6 L9 A2 L8 A3 | L0 L3 L2 L1
sketch "Sketch4" plane through (-15, 17.4, 1) normal (0, 1, 0) x (1, 0, 0)
  circle A0 centre (17, -18) radius 12 projected
  circle A1 centre (17, -18) radius 13.5
  line L0 (34, -17) -> (26, -17) projected
  point P0 (15, 1)
  dimension "d19" = 1.5
extrude "Extrusion3" cut sketch "Sketch4" against normal up to surface (36 mm away) contours A0 | A1
ref_plane "Work Plane2" through (0, -91, 1) normal (0, 0, 1) x (1, 0, 0)
ref_plane "Work Plane3" through (0, -91, 1) normal (0, 0, 1) x (1, 0, 0)
sketch "Sketch5" plane through (0, -91, 1) normal (0, 0, 1) x (1, 0, 0)
  circle A0 centre (-16, 95) radius 2 projected
  circle A1 centre (16, 95) radius 2 projected
  line L0 (19, 99) -> (19, 108.4) projected
  line L1 (19, 102) -> (-19.6499, 102)
  line L2 (-19.6499, 102) -> (-19.6499, 88)
  line L3 (-19.6499, 88) -> (19, 88)
  line L4 (19, 88) -> (19, 102)
  point P0 (0, 91)
  dimension "d22" = 14
  dimension "d23" = 7
  dimension "d24" = 3.6498
extrude "Extrusion4" add sketch "Sketch5" along normal blind 1
sketch "Sketch6" plane through (-9.6, -14.6, 1) normal (0, 0, -1) x (-1, 0, 0)
  line L0 (-30.1, -0.4) -> (10.9, -0.4)
  line L1 (-28.6, -4) -> (-28.6, 32) projected
  line L2 (5.4, 11.6) -> (5.4, -4) projected
  line L3 (-28.6, 0.521) -> (5.4, 0.521)
  line L4 (5.4, 0.521) -> (5.4, -4)
  line L5 (5.4, -4) -> (-28.6, -4)
  line L6 (-28.6, -4) -> (-28.6, 0.521)
  point P0 (-9.6, 14.6)
  point P1 (-28.6, -4)
  point P2 (5.4, 0.521)
extrude "Extrusion5" cut sketch "Sketch6" against normal mid plane 4
equation "\"d15\" = -0.5 * d14 + 0.5 * d12"
equation "\"d23\" = 0.5 * d22"
properties part number "MotorBracket"
